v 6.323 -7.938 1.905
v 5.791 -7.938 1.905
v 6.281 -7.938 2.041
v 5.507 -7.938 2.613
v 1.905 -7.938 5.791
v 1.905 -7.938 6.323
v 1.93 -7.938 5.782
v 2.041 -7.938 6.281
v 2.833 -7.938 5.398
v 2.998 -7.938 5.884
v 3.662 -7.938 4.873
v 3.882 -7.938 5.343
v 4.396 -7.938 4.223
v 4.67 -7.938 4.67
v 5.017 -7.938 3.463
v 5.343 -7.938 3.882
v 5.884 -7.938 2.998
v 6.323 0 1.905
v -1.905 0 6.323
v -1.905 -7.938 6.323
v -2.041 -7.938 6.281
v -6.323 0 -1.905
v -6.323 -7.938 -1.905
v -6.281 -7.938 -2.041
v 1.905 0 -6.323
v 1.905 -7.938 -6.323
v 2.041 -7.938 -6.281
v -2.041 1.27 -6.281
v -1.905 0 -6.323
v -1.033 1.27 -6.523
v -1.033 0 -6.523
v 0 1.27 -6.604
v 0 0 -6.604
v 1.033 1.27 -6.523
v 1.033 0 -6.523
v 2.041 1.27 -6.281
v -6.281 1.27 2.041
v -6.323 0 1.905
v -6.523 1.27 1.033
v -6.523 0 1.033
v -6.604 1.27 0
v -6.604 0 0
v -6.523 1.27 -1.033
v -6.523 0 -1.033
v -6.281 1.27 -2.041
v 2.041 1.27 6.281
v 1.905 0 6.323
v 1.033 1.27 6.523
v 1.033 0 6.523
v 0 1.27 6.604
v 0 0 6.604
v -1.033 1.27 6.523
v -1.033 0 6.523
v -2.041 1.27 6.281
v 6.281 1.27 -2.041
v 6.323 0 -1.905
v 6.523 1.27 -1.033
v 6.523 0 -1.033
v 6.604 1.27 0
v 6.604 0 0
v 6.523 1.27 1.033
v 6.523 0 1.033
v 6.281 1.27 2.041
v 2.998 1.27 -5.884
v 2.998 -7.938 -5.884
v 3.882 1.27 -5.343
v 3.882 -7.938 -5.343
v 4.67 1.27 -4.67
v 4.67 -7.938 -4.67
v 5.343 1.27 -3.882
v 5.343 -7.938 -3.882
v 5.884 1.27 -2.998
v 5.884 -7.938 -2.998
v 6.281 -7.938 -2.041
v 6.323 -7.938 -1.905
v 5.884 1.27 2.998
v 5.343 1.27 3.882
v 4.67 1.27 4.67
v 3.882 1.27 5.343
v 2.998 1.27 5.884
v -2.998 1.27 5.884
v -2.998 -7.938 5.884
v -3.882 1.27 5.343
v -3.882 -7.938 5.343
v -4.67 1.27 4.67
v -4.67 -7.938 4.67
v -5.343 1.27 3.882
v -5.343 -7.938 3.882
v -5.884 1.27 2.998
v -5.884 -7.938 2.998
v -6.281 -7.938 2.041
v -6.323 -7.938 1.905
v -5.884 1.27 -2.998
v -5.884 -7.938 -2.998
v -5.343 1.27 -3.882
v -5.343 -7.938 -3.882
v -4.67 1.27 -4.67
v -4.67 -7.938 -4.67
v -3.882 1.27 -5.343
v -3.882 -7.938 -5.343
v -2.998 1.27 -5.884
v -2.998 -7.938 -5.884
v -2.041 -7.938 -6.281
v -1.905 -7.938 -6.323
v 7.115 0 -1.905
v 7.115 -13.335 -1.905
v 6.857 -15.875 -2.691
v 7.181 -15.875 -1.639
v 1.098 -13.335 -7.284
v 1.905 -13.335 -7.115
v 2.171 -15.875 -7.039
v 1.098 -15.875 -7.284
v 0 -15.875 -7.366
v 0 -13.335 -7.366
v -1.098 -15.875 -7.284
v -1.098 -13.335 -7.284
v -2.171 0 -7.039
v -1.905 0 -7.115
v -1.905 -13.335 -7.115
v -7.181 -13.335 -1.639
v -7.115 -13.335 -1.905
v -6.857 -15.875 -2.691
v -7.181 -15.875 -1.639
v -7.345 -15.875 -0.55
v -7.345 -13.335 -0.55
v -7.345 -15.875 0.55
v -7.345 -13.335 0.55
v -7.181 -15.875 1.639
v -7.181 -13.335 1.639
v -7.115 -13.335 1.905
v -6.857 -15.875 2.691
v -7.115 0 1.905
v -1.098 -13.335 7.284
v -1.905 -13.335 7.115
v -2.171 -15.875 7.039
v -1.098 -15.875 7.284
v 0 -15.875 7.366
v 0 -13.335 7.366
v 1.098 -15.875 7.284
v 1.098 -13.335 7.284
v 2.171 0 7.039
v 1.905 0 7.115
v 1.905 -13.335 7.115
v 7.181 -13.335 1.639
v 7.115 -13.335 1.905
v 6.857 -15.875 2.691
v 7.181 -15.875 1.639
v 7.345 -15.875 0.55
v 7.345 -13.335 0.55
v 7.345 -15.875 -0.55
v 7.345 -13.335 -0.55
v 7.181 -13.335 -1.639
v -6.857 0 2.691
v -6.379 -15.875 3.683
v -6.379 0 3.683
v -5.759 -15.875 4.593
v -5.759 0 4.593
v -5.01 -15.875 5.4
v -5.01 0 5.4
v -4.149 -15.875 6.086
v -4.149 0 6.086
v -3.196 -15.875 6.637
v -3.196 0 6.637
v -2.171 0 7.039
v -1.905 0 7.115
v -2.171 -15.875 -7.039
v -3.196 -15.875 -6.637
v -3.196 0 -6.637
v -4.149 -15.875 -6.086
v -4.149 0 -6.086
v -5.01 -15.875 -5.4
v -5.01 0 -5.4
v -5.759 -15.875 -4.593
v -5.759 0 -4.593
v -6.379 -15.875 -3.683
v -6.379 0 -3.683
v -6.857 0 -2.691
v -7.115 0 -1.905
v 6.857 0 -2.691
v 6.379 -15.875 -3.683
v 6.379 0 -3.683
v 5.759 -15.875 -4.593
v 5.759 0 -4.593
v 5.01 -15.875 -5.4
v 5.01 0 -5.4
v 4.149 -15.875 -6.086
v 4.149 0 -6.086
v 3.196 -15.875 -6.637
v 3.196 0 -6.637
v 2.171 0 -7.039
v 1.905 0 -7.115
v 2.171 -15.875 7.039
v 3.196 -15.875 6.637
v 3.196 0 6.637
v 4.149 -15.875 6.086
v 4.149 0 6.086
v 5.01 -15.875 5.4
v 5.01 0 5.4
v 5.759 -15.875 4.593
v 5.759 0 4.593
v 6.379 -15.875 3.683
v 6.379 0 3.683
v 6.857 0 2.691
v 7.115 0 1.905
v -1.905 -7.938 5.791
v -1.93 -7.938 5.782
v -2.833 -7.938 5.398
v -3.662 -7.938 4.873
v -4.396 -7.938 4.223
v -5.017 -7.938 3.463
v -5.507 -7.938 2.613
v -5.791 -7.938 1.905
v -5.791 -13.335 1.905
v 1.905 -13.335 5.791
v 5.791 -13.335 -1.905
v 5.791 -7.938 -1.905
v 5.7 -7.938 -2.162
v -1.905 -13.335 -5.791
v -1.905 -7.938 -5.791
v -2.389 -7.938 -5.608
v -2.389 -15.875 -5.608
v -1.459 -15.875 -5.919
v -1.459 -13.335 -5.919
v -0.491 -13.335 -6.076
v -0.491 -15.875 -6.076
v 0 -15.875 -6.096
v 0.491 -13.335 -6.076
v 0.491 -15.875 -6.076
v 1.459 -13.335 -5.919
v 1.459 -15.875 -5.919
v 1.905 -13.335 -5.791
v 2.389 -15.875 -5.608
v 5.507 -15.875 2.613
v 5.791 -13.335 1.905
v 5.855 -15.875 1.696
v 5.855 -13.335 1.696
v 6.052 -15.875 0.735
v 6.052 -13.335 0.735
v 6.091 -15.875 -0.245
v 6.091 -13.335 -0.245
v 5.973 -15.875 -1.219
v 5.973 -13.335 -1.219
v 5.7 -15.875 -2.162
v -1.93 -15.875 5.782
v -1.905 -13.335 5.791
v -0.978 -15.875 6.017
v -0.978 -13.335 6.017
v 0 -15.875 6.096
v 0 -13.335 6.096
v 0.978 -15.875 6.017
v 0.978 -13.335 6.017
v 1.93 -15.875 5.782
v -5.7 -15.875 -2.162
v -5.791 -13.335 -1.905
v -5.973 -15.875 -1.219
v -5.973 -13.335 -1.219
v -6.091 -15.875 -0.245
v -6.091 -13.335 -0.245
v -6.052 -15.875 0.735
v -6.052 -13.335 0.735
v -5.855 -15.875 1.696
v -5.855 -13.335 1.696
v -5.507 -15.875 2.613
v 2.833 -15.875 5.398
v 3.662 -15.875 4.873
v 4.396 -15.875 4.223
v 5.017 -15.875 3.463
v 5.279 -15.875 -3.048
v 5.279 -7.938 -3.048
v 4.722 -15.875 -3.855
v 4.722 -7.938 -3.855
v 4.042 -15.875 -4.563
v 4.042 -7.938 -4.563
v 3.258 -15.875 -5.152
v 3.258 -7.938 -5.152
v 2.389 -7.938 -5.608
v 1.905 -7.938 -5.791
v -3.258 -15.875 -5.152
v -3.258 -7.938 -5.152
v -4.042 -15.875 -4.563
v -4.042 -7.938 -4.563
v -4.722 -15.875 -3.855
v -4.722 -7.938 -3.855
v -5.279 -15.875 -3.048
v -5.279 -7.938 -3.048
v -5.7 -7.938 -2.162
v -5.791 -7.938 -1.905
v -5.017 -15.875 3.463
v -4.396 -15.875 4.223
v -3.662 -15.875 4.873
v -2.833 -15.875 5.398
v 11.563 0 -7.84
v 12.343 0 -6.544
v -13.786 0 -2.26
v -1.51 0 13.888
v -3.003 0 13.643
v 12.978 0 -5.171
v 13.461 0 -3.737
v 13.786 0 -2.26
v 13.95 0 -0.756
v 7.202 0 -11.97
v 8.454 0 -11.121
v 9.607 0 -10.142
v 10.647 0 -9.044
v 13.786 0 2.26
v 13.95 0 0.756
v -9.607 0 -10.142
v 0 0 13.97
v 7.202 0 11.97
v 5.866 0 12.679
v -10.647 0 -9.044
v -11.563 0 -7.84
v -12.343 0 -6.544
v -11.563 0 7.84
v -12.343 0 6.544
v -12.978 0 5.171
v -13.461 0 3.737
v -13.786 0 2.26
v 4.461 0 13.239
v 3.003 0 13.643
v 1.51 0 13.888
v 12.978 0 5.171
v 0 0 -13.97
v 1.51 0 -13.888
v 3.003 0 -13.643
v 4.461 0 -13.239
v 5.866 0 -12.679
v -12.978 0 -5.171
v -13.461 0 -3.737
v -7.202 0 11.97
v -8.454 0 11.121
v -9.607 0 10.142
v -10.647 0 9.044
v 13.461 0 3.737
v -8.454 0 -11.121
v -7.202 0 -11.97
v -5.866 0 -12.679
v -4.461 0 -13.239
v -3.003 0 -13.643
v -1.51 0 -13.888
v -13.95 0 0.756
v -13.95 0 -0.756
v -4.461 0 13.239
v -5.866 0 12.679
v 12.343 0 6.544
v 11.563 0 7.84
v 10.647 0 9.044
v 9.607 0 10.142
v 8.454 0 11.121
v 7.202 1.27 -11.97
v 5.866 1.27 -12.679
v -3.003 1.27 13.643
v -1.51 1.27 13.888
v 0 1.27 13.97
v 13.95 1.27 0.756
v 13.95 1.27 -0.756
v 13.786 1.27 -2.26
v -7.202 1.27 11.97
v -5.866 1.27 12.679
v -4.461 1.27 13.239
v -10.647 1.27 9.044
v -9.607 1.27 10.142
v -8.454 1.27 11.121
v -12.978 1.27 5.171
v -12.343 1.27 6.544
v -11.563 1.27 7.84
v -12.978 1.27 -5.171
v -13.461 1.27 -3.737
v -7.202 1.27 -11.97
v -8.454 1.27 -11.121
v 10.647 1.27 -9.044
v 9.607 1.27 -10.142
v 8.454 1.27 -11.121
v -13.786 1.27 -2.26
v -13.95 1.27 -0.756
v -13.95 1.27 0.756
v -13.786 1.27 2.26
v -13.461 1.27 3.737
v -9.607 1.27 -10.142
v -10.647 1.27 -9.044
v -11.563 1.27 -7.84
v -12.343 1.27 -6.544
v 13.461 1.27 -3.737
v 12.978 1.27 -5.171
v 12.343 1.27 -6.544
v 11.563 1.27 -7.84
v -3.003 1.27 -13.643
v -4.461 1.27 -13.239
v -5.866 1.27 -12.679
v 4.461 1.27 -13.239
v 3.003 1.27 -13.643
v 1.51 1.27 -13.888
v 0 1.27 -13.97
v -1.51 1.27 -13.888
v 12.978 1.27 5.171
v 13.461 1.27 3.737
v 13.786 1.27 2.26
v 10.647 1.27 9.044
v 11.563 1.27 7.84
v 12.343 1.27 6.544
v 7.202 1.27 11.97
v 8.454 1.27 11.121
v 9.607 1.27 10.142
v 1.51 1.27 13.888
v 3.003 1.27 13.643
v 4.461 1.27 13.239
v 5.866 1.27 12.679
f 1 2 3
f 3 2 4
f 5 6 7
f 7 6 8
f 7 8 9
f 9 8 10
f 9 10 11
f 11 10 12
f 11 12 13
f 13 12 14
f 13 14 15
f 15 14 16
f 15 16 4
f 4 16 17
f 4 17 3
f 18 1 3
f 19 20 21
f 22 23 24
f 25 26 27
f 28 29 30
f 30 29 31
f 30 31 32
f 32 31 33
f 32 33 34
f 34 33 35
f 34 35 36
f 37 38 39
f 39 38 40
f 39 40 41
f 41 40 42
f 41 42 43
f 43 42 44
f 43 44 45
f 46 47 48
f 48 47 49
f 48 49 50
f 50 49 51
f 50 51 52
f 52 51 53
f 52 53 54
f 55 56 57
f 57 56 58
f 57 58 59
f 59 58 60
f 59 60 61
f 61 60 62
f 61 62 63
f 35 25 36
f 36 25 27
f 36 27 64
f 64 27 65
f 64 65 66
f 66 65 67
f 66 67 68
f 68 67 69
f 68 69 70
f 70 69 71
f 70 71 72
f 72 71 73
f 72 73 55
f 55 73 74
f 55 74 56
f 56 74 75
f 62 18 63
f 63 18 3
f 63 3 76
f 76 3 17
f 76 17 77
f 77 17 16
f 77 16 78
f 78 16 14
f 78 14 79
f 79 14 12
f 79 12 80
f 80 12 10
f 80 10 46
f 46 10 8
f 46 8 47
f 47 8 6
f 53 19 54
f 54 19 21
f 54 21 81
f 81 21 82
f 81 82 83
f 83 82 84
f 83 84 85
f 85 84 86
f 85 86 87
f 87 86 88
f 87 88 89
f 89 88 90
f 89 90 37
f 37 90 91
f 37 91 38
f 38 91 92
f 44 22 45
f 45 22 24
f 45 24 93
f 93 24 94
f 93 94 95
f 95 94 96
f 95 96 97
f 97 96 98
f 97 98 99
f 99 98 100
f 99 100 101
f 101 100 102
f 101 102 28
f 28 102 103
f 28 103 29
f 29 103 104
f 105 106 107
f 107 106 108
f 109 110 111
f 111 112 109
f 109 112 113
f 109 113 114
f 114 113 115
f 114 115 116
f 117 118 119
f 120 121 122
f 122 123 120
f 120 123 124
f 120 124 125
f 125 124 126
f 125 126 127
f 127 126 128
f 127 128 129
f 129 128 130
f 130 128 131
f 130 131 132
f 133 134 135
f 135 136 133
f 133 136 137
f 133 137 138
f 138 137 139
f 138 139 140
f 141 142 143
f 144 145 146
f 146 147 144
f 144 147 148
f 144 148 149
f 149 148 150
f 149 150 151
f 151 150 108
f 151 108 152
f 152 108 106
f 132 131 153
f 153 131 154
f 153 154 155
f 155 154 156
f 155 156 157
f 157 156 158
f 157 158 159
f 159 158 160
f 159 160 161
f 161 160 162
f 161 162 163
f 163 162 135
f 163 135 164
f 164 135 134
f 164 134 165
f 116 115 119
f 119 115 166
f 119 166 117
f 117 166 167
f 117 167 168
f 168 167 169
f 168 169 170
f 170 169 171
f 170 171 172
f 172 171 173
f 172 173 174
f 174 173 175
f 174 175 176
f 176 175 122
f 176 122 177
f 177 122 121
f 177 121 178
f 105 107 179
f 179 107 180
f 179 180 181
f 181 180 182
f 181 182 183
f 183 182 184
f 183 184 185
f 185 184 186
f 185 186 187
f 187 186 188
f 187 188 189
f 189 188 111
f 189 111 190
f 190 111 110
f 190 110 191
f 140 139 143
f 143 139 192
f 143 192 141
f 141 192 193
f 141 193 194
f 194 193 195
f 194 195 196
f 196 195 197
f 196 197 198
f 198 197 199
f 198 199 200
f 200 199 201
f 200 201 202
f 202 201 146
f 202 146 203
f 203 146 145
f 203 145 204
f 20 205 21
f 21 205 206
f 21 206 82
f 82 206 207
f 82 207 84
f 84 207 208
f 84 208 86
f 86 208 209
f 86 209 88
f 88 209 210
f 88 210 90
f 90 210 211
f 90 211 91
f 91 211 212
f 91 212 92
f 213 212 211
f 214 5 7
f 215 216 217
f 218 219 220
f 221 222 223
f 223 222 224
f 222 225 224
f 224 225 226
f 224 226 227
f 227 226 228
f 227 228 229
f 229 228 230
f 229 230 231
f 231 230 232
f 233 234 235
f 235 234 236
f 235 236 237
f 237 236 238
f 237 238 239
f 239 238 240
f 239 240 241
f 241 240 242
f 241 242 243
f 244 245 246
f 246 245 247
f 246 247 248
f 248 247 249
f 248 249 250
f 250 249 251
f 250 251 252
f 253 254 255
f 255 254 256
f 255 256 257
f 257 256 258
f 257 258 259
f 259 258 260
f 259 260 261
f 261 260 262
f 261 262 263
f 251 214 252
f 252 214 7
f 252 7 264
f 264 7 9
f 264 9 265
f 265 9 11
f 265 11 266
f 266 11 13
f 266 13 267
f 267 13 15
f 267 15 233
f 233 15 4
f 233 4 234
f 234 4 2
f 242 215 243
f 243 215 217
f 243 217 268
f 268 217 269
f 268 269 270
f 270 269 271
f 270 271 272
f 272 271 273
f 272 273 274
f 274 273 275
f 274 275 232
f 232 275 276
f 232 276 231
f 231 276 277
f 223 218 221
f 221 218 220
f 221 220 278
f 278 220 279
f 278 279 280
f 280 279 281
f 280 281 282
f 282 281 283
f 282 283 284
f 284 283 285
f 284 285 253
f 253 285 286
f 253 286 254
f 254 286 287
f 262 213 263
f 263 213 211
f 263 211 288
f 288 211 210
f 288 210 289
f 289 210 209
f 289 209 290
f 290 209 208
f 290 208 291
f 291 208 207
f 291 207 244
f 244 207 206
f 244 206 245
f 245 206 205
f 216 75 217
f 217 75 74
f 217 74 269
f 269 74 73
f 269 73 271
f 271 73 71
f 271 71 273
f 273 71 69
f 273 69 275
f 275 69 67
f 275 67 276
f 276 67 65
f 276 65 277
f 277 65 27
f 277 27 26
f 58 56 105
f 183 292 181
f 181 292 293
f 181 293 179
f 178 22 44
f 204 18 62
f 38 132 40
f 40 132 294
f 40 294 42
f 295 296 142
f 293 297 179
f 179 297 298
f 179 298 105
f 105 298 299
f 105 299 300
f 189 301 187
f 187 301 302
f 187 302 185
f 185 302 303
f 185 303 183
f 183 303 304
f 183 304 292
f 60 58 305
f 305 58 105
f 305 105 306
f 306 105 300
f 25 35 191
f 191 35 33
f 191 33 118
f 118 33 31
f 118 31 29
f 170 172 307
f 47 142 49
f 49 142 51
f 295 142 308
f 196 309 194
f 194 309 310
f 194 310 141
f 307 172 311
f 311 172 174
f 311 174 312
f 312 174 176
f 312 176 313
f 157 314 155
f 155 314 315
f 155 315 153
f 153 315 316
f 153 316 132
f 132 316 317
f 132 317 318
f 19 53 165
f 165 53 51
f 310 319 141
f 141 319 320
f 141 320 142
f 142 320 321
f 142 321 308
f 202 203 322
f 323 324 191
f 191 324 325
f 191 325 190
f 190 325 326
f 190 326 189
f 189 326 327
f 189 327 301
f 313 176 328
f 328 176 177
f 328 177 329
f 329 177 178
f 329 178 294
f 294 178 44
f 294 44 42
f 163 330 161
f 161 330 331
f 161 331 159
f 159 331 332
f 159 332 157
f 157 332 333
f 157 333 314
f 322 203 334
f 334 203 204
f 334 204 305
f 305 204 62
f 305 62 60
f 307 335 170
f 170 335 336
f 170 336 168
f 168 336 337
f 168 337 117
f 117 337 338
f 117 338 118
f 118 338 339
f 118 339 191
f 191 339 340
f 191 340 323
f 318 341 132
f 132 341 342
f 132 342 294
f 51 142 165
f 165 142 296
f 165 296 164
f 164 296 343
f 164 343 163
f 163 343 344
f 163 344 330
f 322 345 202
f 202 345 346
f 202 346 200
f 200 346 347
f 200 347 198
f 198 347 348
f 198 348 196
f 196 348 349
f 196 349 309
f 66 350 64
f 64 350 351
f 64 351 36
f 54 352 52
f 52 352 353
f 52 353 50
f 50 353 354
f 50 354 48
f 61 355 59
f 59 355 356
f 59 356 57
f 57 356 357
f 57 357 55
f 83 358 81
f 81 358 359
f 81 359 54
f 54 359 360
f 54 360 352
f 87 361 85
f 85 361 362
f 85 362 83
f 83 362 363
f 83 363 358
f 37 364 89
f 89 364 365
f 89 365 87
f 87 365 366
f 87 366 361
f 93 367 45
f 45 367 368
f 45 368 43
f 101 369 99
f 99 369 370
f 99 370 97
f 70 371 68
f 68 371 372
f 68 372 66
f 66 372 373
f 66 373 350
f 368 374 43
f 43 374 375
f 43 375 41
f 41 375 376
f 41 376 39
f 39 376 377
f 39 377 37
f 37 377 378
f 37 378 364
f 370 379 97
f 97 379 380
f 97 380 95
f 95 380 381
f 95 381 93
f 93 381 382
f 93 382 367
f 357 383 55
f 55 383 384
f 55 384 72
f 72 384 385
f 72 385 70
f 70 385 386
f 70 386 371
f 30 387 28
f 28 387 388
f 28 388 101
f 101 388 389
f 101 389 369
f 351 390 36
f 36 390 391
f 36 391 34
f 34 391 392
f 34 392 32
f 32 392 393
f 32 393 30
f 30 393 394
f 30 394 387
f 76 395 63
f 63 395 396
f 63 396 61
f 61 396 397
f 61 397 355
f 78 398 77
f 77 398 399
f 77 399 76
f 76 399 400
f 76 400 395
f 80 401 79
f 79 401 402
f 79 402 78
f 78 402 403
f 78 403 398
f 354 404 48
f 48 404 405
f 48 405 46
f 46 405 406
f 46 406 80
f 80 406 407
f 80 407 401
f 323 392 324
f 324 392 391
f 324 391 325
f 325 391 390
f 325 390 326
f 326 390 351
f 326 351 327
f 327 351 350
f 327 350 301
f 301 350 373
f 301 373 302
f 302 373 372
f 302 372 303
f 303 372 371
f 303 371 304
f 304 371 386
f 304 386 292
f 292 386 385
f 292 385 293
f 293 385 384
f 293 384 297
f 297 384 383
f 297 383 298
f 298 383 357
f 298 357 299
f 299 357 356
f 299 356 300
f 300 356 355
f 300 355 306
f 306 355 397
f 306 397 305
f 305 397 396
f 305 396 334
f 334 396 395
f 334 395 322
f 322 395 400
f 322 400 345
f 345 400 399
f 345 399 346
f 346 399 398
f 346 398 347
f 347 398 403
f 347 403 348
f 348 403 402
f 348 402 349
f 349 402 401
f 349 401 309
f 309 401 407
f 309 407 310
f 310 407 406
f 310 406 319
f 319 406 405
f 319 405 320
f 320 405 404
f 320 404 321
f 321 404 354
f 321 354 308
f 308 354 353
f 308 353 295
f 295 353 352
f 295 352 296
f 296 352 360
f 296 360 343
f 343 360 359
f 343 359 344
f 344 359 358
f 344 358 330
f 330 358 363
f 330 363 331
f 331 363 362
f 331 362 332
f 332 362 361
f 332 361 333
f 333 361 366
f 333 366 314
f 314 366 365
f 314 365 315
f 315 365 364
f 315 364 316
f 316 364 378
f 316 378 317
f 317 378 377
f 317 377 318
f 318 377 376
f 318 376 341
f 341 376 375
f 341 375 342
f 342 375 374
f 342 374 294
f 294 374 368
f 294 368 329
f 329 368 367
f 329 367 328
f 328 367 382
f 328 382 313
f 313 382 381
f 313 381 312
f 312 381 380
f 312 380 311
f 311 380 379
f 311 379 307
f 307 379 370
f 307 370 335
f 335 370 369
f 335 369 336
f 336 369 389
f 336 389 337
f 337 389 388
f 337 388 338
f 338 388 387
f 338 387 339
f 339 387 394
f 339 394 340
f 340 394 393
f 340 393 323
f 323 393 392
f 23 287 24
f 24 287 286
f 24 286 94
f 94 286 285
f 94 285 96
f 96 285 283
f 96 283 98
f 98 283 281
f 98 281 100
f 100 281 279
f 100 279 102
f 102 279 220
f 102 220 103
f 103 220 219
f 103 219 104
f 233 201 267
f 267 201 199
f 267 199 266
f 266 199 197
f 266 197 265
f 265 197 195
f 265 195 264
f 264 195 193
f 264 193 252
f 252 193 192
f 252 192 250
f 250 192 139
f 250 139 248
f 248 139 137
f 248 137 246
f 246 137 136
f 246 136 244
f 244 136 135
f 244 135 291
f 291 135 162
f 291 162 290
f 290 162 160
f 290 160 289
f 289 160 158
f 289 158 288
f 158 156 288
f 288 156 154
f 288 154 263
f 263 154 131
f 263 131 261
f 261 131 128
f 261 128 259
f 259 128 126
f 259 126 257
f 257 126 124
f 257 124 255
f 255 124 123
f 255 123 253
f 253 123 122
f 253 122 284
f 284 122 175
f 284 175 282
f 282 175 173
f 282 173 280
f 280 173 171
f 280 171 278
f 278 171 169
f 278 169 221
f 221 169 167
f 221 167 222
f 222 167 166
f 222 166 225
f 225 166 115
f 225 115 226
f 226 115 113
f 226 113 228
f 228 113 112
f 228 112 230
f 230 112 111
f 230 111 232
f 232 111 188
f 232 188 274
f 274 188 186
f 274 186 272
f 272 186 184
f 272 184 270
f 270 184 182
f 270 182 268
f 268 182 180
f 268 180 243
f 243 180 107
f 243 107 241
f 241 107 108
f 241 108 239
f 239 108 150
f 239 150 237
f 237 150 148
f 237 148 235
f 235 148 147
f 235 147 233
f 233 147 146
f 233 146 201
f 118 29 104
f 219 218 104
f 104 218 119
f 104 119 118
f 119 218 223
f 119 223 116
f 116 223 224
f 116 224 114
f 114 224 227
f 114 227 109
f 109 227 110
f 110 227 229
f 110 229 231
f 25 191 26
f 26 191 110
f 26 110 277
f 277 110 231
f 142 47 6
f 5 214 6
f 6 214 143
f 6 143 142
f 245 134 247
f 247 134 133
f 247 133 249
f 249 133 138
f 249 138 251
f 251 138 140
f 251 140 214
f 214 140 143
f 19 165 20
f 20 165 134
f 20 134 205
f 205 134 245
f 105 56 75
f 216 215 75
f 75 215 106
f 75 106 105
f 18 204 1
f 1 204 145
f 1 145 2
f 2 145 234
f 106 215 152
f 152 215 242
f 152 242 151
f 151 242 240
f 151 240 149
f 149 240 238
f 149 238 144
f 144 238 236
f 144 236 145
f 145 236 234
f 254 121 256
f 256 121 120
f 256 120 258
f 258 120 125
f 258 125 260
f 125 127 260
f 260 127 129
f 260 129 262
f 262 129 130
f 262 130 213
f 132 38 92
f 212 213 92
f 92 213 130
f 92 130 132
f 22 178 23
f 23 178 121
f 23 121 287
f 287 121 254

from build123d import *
from build123d.topology import SkipClean

# Parameters (mm, degrees)
SKETCH1_R          = 13.97
SKETCH1_R_2        = 6.604
STABILIZER_DEPTH   = 1.27
LARGE_START        = 7.9375
SKETCH2_R          = 7.366
SKETCH2_R_2        = 6.604
LARGE_END_DEPTH    = 7.9375
SMALL_START        = 7.9375
SKETCH3_R          = 7.366
SKETCH3_R_2        = 6.096
SMALL_END_DEPTH    = 7.9375
SKETCH5_W          = 3.81
SKETCH5_H          = 13.335
CUT_EXTRUDE1_DEPTH = 31.730063798
SKETCH7_W          = 3.81
SKETCH7_H          = 13.335
CUT_EXTRUDE2_DEPTH = 31.730063798


with BuildPart() as part:
    # Sketch1 → Stabilizer (new body)
    with BuildSketch(Plane(origin=(0, 0, 0), x_dir=(1, 0, 0), z_dir=(0, 1, 0))):
        Circle(SKETCH1_R)
        Circle(SKETCH1_R_2, mode=Mode.SUBTRACT)
    extrude(amount=STABILIZER_DEPTH)

    # Sketch2 → Large End (add)
    with SkipClean():  # the faces are left unmerged after this step: merging them gives an invalid solid
        with BuildSketch(Plane(origin=(0, 0, 0), x_dir=(-1, 0, 0), z_dir=(0, -1, 0)).offset(LARGE_START)):
            Circle(SKETCH2_R)
            Circle(SKETCH2_R_2, mode=Mode.SUBTRACT)
        extrude(amount=-LARGE_END_DEPTH)

    # Sketch3 → Small End (add)
    with SkipClean():  # the faces are left unmerged after this step: merging them gives an invalid solid
        with BuildSketch(Plane(origin=(0, -7.9375, 0), x_dir=(-1, 0, 0), z_dir=(0, -1, 0)).offset(SMALL_START)):
            Circle(SKETCH3_R)
            Circle(SKETCH3_R_2, mode=Mode.SUBTRACT)
        extrude(amount=-SMALL_END_DEPTH)

    # Sketch5 → Cut-Extrude1 (cut, through all)
    with SkipClean():  # the faces are left unmerged after this step: merging them gives an invalid solid
        with BuildSketch(Plane(origin=(0, -15.875, 7.366), x_dir=(1, 0, 0), z_dir=(0, 0, 1))):
            with Locations((0, 9.2075)):
                Rectangle(SKETCH5_W, SKETCH5_H)
        extrude(amount=-CUT_EXTRUDE1_DEPTH, mode=Mode.SUBTRACT)

    # Sketch7 → Cut-Extrude2 (cut, through all)
    with SkipClean():  # the faces are left unmerged after this step: merging them gives an invalid solid
        with BuildSketch(Plane(origin=(7.366, -15.875, 0), x_dir=(0, 0, -1), z_dir=(1, 0, 0))):
            with Locations((0, 9.2075)):
                Rectangle(SKETCH7_W, SKETCH7_H)
        extrude(amount=-CUT_EXTRUDE2_DEPTH, mode=Mode.SUBTRACT)
    add(part.part.scale(1), mode=Mode.REPLACE)  # the faces are merged on a copy


solid = part.part
